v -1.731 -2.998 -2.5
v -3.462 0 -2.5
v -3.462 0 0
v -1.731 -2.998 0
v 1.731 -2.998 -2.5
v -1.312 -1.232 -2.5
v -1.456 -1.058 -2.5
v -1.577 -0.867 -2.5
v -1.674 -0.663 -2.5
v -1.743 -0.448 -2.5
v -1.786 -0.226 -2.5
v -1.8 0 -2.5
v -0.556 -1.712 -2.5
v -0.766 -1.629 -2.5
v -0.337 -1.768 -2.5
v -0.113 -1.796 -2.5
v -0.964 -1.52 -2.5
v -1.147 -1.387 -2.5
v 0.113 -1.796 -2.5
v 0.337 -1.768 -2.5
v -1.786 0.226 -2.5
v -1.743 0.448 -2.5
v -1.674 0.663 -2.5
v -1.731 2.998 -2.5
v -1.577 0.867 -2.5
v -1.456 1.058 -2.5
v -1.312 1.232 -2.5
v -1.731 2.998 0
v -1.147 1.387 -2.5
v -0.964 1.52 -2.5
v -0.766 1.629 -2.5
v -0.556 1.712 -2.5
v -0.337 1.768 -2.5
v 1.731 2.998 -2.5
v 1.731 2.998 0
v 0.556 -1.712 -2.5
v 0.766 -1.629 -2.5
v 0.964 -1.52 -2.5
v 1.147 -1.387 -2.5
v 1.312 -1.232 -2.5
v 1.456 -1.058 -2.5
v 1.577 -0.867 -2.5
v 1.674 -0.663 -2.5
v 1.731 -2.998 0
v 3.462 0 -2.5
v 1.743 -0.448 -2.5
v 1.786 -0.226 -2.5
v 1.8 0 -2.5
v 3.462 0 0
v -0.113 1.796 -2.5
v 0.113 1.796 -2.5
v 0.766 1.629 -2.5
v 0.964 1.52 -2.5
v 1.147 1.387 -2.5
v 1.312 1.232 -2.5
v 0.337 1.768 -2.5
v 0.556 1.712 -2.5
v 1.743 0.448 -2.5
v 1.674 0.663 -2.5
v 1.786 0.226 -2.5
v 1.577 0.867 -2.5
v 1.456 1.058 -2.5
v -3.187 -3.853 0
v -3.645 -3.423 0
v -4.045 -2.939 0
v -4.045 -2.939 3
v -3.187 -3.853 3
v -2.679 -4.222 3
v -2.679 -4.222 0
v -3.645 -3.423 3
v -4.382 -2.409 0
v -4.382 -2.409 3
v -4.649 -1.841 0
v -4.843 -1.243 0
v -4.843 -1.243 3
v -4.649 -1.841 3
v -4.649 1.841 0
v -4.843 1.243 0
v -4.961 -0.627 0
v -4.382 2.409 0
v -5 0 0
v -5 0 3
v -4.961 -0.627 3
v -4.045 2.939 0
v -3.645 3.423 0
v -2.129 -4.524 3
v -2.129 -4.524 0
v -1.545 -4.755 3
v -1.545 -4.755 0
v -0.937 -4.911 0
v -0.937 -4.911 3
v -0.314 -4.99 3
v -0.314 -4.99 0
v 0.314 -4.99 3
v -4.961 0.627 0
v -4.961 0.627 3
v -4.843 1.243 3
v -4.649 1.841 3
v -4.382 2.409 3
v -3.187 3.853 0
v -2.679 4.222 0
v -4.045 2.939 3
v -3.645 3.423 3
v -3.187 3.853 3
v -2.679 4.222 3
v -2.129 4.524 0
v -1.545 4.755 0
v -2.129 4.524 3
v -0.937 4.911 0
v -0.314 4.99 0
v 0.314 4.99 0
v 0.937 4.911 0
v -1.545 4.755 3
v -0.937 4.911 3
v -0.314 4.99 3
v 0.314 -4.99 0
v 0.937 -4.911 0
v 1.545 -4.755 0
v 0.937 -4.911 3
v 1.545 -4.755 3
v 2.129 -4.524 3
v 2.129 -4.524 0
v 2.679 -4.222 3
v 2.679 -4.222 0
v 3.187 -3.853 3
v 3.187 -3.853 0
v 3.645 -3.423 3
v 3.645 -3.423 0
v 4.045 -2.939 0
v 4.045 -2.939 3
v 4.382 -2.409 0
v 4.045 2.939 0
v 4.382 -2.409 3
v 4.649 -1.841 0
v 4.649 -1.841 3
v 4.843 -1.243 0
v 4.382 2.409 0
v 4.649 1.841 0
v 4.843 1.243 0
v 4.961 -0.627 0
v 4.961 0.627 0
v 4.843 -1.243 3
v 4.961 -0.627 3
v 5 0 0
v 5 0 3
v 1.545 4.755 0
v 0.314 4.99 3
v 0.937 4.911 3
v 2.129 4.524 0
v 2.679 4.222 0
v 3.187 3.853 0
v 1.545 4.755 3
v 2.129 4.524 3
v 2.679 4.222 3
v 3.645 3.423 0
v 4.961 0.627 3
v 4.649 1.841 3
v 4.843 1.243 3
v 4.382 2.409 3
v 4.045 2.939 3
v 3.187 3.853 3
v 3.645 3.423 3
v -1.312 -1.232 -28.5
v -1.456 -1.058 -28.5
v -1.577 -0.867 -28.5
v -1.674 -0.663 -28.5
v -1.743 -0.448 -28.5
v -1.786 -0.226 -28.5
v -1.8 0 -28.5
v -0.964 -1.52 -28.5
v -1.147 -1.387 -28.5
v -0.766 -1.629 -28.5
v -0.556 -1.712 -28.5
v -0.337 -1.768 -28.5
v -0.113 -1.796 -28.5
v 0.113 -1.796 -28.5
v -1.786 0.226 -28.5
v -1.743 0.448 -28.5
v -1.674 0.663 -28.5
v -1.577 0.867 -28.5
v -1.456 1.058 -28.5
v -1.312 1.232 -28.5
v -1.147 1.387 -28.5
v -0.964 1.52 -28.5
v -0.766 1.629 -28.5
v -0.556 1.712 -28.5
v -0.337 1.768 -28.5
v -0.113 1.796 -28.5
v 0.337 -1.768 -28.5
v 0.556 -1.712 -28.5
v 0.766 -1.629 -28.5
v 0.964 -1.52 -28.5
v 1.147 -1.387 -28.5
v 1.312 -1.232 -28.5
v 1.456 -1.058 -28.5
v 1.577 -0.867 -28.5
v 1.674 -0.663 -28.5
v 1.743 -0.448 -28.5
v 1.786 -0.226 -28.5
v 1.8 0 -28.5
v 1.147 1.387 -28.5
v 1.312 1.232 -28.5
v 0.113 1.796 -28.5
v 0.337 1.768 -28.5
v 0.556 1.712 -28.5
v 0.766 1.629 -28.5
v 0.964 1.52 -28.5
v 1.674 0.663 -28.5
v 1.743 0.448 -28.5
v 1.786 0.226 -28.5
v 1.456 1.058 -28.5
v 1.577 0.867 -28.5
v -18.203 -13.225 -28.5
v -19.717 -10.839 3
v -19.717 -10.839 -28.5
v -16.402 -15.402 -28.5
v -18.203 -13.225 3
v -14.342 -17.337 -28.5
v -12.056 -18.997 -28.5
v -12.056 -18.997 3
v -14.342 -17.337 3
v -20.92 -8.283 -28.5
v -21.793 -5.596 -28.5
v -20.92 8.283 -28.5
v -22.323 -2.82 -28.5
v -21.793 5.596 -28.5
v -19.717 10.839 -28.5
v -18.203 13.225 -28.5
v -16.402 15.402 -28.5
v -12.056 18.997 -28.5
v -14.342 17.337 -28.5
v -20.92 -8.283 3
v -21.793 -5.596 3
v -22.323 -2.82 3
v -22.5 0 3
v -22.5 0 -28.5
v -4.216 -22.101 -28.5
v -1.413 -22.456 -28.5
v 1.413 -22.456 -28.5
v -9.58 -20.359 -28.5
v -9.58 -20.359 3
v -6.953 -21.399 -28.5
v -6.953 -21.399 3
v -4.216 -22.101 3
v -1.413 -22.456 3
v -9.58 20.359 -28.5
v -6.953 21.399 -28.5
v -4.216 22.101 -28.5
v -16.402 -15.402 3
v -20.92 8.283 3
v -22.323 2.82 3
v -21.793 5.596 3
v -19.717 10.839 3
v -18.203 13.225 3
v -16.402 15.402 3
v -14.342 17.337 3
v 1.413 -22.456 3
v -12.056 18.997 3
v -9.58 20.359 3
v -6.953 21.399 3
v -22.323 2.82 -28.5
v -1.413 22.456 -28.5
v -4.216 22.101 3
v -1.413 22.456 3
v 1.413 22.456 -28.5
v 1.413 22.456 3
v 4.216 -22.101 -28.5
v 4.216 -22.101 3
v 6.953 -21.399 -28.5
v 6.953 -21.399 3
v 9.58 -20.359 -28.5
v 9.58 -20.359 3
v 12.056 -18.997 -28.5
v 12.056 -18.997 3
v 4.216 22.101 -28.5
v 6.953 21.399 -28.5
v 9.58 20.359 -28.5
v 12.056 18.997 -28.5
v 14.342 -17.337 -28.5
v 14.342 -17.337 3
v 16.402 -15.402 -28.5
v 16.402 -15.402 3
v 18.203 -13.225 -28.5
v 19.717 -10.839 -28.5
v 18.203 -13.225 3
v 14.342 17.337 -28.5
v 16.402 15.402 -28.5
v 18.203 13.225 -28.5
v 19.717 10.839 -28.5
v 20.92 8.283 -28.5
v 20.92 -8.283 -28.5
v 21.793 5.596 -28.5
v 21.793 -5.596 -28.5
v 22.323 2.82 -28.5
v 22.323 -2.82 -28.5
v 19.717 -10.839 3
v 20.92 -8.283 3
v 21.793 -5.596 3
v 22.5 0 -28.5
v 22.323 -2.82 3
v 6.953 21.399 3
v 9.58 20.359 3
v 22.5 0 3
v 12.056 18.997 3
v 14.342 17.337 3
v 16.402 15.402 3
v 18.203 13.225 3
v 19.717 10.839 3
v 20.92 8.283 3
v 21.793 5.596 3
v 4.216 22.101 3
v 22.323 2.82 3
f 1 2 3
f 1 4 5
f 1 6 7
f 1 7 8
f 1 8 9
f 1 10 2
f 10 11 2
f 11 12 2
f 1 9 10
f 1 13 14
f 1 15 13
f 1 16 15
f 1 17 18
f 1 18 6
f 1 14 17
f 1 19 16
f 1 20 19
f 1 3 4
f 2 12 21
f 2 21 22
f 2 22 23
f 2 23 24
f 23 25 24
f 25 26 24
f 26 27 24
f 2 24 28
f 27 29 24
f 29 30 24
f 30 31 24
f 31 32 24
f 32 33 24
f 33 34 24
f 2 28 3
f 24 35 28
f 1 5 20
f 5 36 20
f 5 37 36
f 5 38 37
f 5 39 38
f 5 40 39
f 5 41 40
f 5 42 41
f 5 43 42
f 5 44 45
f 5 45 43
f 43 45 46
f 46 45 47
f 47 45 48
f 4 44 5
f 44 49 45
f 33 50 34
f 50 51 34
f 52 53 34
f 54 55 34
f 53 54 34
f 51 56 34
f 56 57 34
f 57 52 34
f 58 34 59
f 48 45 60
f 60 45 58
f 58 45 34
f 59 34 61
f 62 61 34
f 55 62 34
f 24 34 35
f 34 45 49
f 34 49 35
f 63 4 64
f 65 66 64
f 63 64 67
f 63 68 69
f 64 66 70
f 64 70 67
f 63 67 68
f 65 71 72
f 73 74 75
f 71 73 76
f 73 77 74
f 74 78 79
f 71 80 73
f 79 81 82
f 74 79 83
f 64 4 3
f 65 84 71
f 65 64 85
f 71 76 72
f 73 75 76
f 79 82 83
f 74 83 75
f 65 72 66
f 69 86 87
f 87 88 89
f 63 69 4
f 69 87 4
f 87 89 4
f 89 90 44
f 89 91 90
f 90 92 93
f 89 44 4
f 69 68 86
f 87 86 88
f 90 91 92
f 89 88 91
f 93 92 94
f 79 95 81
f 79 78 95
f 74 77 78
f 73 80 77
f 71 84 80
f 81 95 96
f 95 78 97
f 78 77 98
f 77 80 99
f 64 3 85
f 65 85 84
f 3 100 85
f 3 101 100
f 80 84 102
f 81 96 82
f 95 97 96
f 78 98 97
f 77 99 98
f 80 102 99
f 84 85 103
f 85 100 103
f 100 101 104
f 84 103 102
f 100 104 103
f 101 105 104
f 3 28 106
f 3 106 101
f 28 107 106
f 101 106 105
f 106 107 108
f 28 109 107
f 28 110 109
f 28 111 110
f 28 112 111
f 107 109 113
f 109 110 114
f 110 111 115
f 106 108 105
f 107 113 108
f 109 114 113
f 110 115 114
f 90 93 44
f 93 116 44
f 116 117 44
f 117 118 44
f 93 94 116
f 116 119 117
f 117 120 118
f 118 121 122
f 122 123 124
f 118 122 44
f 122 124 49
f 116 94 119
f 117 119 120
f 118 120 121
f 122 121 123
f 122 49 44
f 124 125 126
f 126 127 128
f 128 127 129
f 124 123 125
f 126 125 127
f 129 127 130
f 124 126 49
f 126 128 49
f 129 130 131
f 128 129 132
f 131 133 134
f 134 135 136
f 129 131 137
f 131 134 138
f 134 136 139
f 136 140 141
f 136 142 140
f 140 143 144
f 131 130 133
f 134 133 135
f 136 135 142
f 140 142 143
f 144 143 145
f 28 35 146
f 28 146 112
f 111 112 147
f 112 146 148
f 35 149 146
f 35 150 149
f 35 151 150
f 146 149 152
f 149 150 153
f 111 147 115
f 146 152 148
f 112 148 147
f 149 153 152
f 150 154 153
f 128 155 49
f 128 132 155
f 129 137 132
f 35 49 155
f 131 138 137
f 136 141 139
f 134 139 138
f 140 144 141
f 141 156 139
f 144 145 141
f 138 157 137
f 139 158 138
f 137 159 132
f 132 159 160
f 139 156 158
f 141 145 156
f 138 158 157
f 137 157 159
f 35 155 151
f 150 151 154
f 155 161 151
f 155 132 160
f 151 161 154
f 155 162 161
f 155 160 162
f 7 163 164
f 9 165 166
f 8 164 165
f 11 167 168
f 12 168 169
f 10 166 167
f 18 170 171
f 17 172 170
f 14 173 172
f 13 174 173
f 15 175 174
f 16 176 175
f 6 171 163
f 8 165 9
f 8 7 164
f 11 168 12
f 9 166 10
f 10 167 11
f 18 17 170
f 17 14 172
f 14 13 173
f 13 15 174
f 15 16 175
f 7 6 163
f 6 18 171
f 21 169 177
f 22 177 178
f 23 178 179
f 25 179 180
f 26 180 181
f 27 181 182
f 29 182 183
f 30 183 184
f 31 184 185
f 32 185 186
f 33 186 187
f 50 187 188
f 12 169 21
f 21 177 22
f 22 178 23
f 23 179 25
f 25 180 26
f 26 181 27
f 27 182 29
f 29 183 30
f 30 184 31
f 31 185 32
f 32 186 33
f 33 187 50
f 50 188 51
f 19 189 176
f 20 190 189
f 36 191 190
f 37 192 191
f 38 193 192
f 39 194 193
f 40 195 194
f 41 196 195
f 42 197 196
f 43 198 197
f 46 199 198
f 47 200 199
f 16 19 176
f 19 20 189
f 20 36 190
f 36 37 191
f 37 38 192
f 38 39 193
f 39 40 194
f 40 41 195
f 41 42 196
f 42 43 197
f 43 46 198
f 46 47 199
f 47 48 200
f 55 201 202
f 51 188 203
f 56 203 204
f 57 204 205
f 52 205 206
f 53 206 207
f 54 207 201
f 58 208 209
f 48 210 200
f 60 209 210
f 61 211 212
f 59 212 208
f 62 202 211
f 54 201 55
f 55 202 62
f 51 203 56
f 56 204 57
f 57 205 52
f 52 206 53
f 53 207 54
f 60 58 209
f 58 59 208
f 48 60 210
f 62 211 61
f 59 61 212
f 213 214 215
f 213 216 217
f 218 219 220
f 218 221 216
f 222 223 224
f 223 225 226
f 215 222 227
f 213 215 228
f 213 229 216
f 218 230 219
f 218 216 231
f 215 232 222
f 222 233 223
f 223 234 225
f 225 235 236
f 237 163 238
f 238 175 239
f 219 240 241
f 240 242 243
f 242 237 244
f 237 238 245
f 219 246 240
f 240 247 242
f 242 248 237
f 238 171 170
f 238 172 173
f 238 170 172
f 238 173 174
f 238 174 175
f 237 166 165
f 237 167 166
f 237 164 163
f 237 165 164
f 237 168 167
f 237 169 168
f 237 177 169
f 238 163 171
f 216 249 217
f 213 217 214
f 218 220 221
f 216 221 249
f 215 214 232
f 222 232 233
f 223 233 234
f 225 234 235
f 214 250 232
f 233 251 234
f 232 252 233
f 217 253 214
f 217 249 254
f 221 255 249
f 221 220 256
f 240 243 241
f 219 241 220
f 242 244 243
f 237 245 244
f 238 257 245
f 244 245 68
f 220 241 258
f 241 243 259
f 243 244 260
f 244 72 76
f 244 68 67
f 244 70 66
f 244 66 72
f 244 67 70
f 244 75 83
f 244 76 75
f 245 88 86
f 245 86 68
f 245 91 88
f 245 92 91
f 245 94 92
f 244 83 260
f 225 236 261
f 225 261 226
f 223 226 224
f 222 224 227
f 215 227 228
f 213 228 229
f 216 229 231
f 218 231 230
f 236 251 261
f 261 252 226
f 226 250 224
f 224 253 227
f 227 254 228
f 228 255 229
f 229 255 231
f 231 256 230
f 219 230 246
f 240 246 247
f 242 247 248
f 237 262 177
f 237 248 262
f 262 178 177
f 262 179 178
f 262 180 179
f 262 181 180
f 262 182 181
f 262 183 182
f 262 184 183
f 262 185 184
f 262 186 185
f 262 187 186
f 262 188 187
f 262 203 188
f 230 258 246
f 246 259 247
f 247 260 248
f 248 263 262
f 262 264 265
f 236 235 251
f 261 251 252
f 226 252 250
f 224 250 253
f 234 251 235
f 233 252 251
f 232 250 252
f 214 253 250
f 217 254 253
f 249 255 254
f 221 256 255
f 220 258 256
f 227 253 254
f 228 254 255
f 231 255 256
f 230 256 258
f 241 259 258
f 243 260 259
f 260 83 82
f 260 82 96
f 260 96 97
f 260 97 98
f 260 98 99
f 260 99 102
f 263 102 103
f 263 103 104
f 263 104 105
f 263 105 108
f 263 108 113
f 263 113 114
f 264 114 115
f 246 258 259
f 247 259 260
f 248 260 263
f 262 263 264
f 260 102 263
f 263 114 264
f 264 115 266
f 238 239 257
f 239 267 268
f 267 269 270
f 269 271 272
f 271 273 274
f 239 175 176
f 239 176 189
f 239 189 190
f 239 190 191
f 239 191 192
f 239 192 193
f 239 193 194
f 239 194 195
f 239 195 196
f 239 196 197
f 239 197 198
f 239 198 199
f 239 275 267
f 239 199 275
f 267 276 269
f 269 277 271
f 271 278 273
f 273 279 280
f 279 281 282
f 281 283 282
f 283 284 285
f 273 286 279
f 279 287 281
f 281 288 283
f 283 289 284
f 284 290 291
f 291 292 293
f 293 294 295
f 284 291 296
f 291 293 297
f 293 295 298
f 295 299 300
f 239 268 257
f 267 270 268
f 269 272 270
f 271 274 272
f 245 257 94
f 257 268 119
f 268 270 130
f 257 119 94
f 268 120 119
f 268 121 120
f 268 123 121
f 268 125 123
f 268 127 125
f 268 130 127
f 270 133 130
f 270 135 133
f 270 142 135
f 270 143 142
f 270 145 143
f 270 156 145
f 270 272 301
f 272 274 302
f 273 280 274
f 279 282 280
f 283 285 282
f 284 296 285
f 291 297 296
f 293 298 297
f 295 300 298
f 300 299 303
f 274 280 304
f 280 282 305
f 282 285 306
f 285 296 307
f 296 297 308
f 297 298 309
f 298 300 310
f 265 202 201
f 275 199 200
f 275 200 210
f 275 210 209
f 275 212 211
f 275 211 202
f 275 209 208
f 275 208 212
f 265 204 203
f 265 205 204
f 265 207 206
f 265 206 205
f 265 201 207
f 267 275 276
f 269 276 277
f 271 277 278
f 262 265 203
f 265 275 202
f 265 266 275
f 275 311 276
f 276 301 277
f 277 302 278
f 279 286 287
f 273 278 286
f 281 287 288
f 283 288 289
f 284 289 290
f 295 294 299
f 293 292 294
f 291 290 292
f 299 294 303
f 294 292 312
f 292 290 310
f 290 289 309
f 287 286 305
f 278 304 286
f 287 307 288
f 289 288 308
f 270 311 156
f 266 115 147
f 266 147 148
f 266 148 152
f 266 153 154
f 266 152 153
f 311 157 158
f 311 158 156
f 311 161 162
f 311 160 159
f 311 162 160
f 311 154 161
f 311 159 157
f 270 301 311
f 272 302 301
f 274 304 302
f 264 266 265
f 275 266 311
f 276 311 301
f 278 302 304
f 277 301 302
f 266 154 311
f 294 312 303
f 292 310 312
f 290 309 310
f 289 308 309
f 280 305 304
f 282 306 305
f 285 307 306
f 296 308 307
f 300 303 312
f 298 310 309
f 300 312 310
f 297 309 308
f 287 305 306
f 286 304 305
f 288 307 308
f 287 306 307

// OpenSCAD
$fn = 50;


difference() {
	union() {
		translate(v = [0, 0, -28.5000000000]) {
			cylinder(h = 31.5000000000, r = 22.5000000000);
		}
	}
	union() {
		translate(v = [0, 0, 0]) {
			rotate(a = [0, 0, 0]) {
				difference() {
					union() {
						translate(v = [0, 0, -2.5000000000]) {
							linear_extrude(height = 2.5000000000) {
								polygon(points = [[3.4620000000, 0.0000000000], [1.7310000000, 2.9981799479], [-1.7310000000, 2.9981799479], [-3.4620000000, 0.0000000000], [-1.7310000000, -2.9981799479], [1.7310000000, -2.9981799479]]);
							}
						}
					}
					union();
				}
			}
		}
		#cylinder(h = 3, r = 5.0000000000);
		#translate(v = [0, 0, -100.0000000000]) {
			cylinder(h = 200, r = 1.8000000000);
		}
	}
}
